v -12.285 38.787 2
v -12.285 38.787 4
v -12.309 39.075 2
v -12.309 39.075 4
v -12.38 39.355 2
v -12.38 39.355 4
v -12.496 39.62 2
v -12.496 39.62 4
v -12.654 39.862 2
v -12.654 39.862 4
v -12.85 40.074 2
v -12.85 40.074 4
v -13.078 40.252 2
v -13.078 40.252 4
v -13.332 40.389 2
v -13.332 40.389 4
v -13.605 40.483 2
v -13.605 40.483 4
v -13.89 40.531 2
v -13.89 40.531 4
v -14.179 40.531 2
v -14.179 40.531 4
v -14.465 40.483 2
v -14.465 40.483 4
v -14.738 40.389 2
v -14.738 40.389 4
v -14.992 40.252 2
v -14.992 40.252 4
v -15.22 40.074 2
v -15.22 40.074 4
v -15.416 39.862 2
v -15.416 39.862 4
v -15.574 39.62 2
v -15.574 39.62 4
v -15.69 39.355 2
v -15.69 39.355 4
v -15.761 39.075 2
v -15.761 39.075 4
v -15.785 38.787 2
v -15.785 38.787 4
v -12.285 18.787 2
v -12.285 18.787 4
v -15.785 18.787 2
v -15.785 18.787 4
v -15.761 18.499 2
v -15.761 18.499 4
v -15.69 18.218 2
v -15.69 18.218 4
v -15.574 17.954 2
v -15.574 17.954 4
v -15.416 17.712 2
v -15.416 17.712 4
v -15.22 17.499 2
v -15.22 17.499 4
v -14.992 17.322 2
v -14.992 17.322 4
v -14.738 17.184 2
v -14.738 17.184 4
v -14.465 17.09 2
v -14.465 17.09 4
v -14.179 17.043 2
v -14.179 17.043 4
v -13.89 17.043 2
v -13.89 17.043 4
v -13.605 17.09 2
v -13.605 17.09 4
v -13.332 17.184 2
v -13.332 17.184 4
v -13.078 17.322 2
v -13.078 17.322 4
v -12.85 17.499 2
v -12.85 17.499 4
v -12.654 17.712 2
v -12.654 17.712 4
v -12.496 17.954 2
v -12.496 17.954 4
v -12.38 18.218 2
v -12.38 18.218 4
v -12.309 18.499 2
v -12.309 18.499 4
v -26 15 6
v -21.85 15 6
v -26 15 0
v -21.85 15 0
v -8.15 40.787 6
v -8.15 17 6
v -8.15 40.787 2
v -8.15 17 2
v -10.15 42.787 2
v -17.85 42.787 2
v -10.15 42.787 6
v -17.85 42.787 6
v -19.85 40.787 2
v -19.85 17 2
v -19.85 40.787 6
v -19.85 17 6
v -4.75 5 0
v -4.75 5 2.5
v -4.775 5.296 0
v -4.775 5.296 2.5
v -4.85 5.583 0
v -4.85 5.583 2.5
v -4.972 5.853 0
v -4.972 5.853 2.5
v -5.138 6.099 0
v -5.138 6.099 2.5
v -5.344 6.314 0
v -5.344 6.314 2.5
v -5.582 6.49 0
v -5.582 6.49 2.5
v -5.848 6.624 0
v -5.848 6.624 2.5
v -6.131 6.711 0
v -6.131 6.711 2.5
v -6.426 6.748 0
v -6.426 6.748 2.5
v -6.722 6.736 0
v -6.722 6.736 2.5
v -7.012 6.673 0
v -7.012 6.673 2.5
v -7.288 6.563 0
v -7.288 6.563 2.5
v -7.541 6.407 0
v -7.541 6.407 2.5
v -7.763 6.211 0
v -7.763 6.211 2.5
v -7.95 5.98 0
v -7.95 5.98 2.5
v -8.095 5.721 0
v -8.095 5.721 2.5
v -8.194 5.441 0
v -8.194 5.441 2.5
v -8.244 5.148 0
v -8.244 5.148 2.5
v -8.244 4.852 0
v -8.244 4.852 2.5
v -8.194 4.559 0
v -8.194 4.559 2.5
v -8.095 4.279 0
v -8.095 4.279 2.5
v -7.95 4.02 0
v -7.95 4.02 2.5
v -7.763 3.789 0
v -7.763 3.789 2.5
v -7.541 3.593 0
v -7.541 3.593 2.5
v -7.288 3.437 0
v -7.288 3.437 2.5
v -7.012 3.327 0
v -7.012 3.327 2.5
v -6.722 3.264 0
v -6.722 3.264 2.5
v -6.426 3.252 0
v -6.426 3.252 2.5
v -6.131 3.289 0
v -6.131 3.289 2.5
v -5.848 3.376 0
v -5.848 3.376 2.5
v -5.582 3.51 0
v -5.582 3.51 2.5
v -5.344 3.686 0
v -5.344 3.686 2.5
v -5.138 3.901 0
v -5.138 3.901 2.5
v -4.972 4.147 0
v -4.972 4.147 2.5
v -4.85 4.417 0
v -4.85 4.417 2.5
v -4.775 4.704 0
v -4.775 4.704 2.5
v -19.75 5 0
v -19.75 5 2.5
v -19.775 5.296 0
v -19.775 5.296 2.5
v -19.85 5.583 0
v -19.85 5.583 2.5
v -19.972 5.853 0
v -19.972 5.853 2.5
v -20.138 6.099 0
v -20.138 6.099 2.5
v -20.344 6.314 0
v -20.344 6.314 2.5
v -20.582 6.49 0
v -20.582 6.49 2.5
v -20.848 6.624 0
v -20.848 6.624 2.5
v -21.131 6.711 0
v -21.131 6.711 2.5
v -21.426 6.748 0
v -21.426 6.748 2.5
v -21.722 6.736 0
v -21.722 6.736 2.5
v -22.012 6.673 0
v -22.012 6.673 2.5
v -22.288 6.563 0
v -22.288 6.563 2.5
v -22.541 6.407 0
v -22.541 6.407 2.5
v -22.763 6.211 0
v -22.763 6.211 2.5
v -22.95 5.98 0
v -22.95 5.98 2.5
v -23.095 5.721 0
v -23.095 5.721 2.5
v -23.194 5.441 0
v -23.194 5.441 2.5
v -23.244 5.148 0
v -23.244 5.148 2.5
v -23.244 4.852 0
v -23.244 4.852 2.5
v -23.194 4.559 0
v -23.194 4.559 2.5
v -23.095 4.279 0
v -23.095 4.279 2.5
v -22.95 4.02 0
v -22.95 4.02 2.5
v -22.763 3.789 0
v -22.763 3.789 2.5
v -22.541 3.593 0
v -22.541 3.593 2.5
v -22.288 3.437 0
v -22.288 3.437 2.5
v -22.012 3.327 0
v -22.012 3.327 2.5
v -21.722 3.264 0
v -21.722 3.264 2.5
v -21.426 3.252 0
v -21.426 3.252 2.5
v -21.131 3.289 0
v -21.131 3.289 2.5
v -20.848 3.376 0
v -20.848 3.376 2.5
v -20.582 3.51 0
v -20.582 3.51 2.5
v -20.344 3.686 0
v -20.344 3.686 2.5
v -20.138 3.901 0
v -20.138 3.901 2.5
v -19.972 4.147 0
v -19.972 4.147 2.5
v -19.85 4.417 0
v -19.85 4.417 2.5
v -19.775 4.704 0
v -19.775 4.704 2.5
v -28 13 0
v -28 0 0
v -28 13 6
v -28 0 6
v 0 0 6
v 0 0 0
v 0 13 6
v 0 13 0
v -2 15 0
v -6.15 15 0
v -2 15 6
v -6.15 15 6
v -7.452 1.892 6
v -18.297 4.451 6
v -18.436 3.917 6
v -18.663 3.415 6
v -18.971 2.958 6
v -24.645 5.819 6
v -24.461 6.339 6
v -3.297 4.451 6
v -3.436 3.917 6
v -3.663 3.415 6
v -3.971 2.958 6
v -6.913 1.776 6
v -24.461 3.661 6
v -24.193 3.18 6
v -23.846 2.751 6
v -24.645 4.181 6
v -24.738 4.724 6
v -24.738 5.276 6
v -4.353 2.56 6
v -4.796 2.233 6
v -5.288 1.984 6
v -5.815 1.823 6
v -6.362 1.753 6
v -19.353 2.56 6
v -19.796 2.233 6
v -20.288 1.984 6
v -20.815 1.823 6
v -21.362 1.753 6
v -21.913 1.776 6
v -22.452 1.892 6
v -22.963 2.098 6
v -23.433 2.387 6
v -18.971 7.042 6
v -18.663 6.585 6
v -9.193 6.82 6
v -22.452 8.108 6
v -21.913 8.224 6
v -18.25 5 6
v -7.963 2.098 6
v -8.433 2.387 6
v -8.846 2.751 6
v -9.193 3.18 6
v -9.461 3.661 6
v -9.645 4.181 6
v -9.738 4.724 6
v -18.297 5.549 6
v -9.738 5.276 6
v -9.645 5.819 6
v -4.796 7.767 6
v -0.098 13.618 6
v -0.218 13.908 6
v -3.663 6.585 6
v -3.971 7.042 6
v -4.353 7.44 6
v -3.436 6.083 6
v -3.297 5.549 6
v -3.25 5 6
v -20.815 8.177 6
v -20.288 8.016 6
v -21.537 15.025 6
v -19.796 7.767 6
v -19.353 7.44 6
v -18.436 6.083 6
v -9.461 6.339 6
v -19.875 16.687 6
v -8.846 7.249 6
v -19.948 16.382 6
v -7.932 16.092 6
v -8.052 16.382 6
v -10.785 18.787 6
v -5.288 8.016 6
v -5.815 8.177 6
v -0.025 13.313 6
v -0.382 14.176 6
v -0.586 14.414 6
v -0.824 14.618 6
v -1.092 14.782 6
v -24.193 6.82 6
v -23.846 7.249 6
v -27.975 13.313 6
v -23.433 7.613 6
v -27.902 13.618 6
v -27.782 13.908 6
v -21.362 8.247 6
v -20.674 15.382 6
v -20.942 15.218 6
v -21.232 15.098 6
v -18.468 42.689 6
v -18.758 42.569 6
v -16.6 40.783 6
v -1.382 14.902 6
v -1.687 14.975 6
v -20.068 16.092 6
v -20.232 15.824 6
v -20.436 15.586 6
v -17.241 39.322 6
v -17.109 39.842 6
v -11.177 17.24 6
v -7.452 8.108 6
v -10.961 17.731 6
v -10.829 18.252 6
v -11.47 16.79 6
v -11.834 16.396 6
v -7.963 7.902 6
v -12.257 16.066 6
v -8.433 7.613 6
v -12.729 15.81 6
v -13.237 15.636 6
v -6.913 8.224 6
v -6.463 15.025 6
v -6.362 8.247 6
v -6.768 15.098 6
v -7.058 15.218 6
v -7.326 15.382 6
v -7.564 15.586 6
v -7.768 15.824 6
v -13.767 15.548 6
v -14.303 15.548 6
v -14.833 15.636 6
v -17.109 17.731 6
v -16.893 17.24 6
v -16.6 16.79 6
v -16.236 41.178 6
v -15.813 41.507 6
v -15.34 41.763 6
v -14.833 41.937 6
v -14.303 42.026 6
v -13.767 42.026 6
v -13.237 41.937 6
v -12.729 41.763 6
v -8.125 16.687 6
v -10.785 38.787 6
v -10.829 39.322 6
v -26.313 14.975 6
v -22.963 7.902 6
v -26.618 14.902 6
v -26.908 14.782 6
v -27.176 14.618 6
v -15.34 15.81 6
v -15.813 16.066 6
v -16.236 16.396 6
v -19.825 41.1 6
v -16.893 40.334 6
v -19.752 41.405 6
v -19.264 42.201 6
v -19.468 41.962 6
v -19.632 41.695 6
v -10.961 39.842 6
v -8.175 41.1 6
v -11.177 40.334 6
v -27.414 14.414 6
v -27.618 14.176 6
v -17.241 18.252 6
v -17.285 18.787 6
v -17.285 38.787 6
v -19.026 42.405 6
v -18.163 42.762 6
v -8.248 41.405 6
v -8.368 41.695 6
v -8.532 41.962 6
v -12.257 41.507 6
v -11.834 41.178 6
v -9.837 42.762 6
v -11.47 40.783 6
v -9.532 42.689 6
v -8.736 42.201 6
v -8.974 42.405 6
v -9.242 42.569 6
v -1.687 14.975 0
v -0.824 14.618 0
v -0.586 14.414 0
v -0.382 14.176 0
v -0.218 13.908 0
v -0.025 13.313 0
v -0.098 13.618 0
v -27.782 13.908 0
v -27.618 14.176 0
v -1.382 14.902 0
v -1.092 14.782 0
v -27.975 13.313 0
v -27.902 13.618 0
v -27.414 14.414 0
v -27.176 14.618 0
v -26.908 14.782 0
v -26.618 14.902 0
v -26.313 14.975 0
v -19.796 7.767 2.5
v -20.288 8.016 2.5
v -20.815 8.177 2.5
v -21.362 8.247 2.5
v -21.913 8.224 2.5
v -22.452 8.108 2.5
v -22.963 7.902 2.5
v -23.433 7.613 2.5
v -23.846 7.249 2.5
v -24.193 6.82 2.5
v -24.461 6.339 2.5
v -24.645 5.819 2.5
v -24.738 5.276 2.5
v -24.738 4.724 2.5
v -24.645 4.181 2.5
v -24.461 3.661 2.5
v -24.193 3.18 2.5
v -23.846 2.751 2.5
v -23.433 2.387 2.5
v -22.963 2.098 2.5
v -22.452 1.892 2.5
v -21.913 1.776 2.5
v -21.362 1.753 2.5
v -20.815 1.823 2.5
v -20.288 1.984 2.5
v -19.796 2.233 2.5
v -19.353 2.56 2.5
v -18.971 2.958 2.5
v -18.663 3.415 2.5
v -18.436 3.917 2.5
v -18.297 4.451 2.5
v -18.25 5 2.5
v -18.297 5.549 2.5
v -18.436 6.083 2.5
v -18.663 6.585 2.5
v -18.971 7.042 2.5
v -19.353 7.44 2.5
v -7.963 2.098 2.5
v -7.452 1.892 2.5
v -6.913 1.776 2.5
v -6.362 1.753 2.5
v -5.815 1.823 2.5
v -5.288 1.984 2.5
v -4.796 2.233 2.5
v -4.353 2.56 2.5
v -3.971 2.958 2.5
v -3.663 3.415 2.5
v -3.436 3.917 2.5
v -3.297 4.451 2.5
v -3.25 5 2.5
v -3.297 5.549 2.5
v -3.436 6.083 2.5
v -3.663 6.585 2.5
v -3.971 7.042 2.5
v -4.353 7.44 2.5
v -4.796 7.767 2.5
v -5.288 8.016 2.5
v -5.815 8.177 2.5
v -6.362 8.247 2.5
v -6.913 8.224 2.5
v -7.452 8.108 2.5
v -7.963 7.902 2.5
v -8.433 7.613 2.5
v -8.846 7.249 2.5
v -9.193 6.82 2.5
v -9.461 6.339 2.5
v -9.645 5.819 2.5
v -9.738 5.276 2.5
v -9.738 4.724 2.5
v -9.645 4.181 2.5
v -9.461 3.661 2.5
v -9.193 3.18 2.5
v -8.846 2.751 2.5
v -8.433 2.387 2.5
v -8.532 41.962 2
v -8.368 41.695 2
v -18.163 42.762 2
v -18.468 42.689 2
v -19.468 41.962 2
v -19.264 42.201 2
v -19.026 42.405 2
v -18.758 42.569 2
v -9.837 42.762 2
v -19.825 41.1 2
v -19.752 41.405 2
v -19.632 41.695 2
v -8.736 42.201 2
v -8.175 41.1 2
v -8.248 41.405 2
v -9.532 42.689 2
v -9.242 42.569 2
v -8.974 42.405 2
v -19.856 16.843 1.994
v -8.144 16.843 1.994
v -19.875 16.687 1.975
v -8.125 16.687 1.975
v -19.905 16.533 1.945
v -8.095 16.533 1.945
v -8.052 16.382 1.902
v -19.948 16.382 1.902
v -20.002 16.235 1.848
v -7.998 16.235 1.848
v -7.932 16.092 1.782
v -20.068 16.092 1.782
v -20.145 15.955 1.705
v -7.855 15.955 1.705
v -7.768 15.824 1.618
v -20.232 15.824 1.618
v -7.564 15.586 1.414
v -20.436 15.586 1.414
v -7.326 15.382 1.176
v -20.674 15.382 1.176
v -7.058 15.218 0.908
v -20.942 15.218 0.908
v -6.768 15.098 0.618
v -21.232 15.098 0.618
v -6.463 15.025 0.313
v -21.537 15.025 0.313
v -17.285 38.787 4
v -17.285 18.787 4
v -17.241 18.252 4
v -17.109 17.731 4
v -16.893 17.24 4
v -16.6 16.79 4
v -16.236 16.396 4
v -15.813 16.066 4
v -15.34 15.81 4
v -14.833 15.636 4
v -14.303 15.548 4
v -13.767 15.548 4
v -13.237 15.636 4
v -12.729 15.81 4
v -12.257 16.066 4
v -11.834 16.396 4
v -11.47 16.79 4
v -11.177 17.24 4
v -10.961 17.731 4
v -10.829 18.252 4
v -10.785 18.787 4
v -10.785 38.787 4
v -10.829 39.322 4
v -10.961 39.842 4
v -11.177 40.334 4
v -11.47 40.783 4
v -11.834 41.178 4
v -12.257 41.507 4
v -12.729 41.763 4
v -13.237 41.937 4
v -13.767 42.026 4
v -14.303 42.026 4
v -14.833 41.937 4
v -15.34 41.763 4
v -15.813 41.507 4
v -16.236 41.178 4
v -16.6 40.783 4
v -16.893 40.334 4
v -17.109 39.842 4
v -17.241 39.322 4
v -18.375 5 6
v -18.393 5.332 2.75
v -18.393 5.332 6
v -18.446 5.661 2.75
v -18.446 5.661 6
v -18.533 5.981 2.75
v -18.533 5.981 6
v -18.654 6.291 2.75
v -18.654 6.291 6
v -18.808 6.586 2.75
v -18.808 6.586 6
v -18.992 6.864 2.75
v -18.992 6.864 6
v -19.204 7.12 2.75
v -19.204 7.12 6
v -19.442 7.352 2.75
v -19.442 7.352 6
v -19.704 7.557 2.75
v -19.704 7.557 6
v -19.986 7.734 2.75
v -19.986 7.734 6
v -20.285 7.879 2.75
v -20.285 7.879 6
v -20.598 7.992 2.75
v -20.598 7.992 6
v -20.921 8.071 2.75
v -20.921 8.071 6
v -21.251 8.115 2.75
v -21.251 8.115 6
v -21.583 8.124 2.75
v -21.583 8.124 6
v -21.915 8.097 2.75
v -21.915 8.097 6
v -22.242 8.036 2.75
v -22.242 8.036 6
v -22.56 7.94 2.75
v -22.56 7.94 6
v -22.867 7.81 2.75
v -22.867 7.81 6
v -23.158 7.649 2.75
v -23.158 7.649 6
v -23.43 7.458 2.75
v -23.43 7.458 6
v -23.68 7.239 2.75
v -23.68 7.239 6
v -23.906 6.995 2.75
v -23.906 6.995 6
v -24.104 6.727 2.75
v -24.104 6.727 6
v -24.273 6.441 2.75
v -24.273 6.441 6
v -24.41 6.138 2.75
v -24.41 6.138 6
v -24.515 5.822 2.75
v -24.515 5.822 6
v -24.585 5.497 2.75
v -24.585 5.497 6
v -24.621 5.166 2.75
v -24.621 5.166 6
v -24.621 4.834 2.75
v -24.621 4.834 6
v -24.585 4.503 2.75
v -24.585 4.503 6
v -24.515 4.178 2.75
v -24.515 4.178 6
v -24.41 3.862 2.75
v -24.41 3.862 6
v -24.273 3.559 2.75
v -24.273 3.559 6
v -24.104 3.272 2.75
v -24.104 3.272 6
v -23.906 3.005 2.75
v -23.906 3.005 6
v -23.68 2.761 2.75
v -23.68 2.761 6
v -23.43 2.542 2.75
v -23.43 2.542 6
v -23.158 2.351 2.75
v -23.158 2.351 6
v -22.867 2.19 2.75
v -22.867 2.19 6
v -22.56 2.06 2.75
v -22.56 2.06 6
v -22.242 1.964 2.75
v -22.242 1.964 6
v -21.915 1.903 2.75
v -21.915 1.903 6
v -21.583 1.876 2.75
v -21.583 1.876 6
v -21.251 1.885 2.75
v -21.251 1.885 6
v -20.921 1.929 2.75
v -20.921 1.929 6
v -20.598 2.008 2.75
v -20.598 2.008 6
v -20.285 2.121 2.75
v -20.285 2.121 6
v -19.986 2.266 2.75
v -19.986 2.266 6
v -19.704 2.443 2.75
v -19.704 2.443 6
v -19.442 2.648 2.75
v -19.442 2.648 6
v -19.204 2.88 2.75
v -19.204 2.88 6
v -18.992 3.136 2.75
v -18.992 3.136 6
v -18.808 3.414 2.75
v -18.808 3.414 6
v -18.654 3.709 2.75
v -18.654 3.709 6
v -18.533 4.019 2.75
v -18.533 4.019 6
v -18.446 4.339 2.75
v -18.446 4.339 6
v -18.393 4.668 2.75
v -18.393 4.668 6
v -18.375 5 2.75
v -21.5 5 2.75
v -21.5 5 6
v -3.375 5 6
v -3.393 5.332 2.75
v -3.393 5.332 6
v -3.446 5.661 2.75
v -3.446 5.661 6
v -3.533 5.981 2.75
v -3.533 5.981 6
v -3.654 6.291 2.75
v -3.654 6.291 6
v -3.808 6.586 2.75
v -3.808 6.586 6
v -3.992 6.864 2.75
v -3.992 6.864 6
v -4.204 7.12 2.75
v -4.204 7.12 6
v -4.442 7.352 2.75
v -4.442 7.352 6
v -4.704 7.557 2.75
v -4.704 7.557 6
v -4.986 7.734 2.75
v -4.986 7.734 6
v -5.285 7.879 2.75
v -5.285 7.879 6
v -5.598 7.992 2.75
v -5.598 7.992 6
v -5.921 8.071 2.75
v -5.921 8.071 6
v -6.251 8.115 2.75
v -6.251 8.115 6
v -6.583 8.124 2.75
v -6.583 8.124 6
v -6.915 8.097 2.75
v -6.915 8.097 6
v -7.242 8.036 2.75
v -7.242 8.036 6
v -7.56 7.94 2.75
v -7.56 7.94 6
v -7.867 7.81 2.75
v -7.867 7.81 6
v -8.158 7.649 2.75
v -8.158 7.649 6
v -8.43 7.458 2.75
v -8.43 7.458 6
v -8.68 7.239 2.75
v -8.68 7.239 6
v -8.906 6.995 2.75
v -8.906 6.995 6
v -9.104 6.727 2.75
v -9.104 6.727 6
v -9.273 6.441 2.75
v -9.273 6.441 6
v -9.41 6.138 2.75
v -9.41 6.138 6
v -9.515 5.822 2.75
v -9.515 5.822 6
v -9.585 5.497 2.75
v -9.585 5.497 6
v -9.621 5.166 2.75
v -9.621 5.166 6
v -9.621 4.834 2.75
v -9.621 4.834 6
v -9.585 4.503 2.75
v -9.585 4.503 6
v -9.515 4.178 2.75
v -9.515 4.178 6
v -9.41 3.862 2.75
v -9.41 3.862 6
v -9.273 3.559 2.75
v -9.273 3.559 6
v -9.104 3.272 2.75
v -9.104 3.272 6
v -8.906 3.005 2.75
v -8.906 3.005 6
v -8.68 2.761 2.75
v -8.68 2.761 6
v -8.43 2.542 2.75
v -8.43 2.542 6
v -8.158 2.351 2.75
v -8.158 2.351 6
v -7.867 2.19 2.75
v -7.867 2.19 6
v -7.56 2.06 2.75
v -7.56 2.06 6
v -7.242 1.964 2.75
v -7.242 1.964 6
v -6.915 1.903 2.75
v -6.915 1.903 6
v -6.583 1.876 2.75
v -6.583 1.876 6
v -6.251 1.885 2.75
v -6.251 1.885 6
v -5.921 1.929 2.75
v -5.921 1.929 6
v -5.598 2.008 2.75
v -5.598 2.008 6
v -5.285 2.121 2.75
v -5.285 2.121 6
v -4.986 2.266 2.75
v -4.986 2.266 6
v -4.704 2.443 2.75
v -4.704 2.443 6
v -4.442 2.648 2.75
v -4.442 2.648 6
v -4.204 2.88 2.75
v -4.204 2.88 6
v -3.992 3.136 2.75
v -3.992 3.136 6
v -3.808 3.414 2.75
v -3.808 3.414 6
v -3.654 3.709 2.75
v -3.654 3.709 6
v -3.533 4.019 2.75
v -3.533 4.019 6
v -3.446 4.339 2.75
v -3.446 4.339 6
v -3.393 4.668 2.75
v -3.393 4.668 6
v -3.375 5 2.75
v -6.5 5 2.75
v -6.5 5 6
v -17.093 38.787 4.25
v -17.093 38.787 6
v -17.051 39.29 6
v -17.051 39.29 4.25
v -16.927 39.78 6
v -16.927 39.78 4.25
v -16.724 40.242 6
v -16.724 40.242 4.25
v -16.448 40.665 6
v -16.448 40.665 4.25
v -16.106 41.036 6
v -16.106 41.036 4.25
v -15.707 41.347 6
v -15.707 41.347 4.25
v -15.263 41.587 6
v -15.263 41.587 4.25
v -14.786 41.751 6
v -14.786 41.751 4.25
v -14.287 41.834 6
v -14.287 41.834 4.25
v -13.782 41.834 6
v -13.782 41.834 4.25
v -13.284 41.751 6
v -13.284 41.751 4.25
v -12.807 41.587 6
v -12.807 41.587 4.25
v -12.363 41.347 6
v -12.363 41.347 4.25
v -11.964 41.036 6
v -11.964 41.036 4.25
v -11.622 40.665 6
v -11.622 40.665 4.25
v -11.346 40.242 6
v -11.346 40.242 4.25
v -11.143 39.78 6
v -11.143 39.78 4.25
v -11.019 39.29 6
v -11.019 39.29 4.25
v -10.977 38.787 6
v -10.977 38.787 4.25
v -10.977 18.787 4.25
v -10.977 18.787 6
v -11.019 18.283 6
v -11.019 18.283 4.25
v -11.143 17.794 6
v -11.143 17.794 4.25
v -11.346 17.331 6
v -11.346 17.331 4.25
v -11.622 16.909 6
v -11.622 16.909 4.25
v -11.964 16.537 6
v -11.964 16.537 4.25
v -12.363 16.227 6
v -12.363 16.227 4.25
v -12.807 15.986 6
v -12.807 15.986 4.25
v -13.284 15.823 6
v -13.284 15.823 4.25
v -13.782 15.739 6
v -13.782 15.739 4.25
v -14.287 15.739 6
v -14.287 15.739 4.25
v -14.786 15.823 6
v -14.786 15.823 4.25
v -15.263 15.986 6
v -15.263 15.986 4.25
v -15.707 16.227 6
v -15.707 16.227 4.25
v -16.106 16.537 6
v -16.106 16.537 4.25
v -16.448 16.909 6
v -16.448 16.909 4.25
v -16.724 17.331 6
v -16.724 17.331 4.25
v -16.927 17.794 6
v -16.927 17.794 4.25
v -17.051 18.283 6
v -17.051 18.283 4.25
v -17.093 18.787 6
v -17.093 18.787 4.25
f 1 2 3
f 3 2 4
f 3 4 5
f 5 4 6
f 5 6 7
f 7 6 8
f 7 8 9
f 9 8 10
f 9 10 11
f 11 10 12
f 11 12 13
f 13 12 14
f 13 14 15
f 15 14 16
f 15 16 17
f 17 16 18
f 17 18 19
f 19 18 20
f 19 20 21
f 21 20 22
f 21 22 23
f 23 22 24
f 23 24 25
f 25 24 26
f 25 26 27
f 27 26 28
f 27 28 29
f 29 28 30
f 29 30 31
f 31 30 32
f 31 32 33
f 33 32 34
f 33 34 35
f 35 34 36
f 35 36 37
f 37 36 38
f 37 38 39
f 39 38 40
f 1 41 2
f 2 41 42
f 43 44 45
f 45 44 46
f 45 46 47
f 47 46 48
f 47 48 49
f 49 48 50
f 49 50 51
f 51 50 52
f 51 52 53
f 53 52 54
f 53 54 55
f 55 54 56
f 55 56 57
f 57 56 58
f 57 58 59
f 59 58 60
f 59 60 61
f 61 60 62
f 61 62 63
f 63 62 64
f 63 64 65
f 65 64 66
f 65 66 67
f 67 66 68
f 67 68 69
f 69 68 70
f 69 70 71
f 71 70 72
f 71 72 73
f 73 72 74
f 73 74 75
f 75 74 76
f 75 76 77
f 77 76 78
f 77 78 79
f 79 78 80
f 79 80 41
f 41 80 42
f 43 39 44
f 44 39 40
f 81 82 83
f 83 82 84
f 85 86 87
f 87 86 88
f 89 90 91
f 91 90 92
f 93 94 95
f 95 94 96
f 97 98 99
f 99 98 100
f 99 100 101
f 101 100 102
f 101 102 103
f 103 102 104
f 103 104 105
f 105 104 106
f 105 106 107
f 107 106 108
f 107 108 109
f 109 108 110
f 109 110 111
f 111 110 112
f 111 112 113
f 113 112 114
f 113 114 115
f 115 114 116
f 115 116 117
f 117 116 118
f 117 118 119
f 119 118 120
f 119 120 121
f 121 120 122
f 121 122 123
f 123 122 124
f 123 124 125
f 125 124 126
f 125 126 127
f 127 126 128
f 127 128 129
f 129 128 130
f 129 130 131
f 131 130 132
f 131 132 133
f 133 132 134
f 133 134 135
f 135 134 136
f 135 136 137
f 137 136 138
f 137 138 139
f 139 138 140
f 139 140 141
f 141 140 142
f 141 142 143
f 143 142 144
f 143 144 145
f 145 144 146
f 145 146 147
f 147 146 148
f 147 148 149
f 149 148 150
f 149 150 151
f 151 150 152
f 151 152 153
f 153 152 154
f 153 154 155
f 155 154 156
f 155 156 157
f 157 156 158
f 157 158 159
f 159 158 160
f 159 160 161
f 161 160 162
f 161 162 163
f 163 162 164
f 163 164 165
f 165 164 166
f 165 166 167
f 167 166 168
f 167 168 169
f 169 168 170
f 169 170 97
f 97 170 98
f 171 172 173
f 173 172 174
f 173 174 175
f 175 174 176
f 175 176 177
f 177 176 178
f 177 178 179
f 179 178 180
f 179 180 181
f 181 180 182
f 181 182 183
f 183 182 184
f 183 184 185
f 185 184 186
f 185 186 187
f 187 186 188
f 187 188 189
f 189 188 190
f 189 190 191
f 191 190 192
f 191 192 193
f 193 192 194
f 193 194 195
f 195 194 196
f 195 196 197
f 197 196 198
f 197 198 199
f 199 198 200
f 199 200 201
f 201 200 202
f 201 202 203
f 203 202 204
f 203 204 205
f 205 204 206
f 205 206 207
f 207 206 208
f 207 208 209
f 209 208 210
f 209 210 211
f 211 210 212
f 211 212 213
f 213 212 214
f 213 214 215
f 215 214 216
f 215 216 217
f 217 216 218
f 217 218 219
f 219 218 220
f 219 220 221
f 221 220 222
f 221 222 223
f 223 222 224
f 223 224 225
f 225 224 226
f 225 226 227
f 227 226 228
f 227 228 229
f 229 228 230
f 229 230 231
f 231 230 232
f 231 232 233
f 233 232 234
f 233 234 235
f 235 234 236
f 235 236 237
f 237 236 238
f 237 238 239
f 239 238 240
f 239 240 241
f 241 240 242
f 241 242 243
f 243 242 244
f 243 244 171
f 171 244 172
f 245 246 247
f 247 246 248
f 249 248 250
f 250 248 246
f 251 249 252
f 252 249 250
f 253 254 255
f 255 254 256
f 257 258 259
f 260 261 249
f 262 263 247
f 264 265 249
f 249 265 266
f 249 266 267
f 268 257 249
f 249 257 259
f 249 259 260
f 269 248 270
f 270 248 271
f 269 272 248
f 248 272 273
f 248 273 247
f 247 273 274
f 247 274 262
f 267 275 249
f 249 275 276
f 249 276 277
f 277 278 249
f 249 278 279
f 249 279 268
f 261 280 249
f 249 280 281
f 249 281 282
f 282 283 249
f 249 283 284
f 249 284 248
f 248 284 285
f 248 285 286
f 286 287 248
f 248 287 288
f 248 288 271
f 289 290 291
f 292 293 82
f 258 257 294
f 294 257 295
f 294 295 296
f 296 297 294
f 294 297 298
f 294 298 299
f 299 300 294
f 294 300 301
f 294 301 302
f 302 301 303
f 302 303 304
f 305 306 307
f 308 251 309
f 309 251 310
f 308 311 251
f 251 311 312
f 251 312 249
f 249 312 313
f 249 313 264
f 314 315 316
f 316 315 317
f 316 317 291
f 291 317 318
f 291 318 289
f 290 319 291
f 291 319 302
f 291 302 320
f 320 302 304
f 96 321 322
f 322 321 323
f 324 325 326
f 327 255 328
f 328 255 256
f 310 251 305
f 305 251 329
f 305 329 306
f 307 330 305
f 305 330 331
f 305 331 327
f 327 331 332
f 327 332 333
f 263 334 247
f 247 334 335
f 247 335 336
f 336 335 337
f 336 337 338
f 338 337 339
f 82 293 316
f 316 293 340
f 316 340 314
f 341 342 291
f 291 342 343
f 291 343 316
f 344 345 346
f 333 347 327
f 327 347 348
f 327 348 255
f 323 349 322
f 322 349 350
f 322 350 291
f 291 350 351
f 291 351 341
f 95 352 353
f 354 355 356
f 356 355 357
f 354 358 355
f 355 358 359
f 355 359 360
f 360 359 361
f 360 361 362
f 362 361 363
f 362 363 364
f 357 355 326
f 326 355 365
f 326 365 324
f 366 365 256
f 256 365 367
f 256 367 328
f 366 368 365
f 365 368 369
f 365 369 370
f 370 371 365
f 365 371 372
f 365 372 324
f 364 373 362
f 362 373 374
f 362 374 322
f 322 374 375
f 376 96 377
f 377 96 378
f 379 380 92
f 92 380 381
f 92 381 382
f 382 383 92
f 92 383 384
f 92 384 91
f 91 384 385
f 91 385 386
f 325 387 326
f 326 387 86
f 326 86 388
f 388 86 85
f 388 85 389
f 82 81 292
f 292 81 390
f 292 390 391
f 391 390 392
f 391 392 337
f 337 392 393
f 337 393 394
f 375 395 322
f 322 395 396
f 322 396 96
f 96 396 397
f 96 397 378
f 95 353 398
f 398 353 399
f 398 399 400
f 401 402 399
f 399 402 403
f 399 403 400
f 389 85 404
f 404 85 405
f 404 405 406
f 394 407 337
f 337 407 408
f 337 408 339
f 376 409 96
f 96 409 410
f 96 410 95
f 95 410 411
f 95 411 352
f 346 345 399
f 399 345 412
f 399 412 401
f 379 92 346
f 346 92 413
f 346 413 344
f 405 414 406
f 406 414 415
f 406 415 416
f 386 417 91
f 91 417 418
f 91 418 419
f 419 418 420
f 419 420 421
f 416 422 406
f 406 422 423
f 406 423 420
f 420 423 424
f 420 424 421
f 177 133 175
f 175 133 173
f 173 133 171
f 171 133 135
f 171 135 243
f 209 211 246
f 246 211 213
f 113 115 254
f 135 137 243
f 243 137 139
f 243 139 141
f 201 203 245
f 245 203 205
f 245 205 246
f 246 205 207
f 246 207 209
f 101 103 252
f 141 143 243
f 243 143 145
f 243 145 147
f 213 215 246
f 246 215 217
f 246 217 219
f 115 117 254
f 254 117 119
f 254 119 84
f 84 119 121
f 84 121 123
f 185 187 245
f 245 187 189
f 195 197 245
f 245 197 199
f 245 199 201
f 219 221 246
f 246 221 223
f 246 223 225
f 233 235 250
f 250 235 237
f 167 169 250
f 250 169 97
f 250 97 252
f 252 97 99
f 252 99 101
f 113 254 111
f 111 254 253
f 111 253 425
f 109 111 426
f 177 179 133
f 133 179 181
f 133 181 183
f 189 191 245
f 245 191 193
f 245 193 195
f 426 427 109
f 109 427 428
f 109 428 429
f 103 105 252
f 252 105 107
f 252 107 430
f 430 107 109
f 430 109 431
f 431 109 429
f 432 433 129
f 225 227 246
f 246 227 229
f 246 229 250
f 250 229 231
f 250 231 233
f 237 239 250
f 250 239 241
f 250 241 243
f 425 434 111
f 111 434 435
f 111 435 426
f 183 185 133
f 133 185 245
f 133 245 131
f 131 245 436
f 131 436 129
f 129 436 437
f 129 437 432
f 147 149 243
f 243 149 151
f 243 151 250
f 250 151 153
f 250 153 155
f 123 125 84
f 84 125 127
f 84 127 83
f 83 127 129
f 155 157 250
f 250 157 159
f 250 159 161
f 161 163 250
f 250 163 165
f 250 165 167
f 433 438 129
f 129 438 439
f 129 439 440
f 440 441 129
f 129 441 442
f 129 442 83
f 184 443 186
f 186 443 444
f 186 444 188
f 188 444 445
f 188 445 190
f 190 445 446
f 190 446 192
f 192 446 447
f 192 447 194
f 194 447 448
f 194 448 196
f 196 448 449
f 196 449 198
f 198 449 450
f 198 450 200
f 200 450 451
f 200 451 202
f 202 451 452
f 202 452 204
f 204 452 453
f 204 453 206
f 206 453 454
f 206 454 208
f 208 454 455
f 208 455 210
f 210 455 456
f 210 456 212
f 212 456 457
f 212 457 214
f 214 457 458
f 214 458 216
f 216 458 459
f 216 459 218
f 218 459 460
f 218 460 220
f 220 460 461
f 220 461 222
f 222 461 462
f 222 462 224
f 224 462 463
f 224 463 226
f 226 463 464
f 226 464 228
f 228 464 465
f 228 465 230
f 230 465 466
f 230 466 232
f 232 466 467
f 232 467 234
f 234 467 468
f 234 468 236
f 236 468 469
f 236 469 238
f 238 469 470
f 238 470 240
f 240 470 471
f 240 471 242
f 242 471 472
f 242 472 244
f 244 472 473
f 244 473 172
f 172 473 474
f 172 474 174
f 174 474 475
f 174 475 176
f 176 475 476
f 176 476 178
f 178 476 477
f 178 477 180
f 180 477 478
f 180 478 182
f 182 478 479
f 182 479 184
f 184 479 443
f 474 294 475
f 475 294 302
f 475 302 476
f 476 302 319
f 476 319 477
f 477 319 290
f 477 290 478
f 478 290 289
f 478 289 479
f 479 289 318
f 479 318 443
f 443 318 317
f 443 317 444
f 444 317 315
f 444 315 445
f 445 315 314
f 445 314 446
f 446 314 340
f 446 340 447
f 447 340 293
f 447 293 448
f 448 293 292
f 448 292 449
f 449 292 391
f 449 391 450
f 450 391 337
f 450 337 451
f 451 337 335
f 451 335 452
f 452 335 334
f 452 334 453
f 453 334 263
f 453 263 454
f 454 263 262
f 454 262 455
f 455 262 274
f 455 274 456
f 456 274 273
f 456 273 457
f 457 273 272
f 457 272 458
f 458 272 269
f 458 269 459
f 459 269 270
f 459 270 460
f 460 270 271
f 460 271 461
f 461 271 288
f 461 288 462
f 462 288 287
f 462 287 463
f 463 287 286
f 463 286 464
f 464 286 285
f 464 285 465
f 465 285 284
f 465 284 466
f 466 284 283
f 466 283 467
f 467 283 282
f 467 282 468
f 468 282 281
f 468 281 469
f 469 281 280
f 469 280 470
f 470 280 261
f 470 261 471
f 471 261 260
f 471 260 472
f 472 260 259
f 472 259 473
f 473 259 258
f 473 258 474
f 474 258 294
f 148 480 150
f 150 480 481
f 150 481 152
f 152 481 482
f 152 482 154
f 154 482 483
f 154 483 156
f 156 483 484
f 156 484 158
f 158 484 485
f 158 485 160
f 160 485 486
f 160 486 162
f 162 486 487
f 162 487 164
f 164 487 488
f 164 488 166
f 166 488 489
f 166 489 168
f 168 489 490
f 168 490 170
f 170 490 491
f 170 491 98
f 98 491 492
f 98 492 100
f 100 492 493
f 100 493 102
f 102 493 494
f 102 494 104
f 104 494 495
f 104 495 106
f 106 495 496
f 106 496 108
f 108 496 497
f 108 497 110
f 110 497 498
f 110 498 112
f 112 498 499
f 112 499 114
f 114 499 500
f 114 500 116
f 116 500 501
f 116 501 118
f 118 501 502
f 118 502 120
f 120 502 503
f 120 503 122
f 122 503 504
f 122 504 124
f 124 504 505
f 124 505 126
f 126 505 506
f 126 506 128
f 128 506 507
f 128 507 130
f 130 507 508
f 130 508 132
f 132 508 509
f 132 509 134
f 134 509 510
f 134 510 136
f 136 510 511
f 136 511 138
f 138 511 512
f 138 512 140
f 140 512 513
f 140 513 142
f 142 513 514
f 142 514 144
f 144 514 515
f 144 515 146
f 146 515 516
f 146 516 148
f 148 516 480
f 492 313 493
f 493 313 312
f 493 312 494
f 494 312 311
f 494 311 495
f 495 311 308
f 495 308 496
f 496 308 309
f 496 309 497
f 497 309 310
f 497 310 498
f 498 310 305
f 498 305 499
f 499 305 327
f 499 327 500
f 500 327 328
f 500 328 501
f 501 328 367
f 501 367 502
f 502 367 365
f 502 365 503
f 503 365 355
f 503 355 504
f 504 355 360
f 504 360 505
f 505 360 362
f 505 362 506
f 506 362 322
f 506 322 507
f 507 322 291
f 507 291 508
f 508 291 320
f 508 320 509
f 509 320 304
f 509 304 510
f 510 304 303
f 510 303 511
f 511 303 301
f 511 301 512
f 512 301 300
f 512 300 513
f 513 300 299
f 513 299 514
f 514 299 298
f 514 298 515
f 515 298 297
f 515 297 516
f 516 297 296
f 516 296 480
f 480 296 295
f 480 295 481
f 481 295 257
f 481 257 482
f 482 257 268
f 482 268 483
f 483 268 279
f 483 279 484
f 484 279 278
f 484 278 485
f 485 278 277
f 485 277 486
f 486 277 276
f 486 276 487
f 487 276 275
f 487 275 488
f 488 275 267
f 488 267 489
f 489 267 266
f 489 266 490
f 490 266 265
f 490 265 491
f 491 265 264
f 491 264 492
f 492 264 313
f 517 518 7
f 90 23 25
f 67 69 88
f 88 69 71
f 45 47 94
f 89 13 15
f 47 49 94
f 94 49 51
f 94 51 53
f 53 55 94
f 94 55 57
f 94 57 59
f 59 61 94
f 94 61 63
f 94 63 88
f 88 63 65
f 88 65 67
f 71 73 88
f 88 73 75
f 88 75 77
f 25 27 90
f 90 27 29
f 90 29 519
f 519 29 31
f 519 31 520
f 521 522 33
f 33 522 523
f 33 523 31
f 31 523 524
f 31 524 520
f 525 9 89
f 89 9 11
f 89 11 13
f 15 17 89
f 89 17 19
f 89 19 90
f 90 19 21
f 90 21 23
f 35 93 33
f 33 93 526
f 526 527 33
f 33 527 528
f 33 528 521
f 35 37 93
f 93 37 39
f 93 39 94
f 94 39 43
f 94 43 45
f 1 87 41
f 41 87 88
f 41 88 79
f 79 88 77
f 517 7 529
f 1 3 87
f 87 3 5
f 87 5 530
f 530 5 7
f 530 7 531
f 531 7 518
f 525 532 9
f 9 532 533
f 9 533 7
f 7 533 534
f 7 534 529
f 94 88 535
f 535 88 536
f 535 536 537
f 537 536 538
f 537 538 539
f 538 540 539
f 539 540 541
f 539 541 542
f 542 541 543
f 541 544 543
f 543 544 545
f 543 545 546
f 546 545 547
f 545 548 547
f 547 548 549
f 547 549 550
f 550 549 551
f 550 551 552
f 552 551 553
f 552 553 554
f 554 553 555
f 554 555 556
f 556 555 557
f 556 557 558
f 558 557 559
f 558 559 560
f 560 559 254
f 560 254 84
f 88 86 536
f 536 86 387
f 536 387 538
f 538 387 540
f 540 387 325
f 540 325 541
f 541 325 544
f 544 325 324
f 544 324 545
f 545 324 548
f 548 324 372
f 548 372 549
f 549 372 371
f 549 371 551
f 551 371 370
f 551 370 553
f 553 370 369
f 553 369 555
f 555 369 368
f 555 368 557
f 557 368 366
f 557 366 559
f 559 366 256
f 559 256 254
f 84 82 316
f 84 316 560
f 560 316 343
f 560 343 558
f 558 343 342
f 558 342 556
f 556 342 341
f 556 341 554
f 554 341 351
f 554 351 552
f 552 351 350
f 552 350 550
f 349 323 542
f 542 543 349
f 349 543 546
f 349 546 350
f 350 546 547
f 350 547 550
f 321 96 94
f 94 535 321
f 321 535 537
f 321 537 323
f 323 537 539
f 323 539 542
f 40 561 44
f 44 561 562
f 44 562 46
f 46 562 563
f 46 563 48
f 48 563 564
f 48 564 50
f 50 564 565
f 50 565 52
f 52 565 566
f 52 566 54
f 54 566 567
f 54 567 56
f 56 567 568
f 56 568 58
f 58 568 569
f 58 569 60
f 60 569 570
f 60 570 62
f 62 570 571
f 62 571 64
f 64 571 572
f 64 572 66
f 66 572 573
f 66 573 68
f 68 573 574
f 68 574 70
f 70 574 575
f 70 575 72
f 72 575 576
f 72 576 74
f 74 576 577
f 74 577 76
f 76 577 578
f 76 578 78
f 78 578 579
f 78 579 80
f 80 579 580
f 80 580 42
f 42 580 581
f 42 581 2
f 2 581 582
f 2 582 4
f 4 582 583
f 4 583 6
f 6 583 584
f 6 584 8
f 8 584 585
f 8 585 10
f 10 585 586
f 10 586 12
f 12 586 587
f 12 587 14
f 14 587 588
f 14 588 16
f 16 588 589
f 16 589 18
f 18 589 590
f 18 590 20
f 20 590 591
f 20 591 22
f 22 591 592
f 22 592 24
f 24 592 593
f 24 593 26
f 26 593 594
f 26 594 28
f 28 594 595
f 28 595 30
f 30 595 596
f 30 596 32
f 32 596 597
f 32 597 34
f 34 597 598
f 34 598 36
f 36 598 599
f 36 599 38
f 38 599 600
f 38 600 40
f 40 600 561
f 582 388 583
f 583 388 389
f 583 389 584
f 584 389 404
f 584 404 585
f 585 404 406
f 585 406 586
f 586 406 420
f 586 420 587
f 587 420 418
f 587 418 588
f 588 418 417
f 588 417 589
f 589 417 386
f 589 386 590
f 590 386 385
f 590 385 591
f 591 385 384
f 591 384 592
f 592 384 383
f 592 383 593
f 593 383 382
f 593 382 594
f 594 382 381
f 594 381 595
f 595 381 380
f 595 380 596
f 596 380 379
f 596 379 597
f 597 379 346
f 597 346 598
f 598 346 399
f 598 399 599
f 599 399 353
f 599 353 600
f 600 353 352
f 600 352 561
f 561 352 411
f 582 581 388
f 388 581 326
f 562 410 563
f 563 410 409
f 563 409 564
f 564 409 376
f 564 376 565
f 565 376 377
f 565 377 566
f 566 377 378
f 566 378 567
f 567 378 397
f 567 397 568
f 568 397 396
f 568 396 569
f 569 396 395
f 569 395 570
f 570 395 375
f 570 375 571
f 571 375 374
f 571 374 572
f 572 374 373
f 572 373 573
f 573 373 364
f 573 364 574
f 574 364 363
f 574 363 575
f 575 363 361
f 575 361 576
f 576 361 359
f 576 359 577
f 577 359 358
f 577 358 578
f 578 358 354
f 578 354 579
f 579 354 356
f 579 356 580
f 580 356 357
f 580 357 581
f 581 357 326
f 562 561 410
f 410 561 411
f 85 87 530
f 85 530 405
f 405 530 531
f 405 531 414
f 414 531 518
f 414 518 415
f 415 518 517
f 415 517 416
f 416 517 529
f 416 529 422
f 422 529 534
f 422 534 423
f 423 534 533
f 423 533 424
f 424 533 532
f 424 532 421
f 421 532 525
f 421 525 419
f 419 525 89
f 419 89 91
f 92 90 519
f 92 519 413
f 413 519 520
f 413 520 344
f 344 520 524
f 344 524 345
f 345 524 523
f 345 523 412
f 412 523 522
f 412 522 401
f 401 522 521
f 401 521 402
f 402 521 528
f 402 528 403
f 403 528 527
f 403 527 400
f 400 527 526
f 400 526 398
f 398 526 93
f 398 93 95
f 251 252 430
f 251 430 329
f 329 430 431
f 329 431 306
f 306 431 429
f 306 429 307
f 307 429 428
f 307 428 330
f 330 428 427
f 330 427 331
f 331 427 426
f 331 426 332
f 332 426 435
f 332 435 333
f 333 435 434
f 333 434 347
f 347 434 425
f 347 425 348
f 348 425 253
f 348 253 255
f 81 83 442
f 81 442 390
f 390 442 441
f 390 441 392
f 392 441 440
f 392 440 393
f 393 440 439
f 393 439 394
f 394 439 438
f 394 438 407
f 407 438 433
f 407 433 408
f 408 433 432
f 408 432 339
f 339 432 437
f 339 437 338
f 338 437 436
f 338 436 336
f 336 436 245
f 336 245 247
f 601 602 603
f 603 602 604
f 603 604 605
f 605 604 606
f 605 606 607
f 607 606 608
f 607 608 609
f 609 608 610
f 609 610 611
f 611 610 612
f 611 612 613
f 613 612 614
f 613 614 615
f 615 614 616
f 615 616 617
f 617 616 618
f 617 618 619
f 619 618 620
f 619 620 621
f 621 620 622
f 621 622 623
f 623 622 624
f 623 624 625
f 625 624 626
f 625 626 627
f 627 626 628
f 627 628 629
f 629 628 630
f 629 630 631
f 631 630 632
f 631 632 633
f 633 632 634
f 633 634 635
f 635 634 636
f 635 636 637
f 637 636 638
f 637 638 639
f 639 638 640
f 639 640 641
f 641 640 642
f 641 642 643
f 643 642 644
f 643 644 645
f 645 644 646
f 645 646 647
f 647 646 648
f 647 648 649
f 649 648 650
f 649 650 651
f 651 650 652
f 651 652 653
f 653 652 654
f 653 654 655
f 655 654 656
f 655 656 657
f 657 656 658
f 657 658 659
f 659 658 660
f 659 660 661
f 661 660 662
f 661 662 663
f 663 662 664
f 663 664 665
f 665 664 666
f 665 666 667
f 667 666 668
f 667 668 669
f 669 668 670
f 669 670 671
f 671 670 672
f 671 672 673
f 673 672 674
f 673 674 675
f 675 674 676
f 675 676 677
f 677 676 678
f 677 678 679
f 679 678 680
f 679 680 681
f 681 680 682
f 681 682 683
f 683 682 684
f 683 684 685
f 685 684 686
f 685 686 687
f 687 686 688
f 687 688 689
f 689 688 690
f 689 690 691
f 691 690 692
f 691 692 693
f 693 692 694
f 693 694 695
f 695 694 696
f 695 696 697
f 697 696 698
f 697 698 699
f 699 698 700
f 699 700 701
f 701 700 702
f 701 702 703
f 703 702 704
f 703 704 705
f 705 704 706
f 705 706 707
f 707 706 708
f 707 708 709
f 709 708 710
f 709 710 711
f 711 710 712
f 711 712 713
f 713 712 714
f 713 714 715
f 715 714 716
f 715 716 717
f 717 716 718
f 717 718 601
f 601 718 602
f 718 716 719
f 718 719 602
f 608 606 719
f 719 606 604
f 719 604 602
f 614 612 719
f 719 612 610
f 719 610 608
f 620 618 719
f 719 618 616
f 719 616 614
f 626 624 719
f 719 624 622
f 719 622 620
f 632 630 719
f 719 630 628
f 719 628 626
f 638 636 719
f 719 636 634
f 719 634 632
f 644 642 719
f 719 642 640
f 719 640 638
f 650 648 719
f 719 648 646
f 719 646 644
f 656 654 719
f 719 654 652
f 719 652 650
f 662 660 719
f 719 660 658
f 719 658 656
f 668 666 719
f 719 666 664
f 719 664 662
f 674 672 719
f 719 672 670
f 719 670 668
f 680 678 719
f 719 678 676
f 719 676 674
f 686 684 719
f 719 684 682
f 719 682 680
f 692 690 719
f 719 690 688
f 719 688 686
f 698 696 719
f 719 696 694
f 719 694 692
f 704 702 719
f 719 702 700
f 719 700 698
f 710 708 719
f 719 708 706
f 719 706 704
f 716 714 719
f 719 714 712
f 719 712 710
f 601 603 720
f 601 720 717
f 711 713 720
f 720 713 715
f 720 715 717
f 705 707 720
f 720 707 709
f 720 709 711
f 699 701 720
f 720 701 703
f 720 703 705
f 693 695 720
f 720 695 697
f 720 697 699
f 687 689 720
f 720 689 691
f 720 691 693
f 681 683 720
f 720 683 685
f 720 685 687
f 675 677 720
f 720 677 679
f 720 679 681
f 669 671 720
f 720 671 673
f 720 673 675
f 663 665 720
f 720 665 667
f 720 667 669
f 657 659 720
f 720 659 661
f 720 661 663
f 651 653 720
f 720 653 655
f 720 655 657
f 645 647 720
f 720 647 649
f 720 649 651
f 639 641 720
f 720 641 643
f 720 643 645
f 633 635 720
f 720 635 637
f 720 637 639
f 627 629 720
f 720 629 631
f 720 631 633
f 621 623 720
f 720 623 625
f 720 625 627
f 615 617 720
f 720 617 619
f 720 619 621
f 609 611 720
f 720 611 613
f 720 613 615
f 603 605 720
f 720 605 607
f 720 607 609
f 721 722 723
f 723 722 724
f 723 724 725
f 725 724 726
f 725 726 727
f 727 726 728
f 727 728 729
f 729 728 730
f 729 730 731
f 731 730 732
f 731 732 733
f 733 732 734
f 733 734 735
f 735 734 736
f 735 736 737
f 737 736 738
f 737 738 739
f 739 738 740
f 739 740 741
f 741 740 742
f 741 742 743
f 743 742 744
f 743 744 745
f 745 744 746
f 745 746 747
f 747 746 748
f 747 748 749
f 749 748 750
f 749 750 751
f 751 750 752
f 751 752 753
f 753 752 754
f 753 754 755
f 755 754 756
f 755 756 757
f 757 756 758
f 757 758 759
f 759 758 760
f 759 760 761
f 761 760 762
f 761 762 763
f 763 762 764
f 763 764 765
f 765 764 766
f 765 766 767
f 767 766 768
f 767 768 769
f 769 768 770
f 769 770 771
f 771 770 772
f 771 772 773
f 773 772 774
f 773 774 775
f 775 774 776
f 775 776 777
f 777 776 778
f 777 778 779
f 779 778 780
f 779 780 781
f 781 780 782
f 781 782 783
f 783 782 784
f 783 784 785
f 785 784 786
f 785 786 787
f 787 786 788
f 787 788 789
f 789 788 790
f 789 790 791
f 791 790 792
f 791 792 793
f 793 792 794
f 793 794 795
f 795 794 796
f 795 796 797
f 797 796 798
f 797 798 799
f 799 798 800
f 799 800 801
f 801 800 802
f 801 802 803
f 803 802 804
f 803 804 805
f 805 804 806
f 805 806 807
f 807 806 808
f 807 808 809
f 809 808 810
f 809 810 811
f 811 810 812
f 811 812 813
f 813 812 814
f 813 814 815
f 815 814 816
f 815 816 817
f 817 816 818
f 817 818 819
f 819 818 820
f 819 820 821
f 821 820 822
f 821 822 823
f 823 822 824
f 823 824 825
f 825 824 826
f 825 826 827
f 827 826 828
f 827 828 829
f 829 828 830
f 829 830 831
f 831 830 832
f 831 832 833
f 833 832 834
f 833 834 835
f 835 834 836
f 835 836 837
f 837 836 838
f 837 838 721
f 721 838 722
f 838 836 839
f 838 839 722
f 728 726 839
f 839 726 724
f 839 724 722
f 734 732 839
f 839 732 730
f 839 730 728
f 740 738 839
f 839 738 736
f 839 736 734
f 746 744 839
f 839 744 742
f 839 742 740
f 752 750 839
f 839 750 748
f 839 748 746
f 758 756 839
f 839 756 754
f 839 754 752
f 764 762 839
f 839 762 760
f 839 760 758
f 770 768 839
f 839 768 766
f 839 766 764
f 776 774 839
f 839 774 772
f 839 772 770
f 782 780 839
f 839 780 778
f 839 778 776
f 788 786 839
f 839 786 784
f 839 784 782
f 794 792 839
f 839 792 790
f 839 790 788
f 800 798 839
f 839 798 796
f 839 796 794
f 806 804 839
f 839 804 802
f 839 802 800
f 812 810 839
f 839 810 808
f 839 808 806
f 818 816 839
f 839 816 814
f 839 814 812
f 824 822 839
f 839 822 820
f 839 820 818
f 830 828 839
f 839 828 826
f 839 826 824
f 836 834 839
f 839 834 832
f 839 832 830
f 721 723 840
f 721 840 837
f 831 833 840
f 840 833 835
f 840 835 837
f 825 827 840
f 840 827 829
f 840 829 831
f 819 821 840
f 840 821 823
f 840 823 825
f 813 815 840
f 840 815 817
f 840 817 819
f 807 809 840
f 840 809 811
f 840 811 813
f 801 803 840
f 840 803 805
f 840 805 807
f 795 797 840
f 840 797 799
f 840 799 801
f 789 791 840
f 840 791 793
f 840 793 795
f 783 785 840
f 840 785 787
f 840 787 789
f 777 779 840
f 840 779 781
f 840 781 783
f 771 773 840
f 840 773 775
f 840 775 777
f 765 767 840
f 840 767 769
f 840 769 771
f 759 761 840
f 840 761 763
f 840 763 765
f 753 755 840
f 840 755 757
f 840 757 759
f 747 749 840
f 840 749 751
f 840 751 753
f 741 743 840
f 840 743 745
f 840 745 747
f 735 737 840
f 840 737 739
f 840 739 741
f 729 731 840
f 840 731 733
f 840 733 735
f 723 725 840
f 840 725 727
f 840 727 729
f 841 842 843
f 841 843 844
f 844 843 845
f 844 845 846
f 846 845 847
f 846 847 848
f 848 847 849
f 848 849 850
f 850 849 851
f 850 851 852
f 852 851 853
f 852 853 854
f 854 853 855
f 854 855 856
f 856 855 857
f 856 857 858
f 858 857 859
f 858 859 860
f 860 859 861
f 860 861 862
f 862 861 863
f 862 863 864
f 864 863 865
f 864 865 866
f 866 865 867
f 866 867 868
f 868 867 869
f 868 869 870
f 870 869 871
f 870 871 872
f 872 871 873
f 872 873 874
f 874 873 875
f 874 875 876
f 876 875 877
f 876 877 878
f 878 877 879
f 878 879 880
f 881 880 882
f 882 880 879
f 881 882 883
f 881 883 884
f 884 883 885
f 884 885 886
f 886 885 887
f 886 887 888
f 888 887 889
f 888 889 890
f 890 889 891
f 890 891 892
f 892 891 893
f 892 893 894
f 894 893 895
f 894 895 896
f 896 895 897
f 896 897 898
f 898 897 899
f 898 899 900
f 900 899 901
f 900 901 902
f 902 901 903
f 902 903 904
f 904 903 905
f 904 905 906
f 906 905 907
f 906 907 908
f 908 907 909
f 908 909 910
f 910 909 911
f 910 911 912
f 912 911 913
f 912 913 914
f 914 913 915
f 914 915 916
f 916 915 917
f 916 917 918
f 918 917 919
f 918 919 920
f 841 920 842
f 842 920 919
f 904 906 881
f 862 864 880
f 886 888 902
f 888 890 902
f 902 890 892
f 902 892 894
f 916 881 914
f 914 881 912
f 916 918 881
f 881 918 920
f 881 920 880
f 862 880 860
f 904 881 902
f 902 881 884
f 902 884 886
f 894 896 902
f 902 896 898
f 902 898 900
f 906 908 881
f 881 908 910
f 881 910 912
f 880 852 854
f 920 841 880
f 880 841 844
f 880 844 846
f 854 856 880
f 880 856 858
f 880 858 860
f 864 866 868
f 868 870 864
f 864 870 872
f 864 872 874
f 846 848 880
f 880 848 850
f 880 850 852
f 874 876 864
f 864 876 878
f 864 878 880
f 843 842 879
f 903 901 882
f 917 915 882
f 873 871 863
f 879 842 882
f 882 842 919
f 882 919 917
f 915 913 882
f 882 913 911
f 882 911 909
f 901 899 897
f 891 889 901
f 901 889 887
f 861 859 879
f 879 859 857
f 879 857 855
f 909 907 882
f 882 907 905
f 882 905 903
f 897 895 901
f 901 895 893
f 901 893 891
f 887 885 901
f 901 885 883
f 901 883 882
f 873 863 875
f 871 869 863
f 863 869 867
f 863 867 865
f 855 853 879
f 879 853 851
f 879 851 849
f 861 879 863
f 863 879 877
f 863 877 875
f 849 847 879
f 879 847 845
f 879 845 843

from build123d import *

# Parameters (mm, degrees)
BOSS_EXTRUDE1_DEPTH     = 6
CUT_EXTRUDE1_DEPTH      = 33.32645975048922
CUT_EXTRUDE1_DEPTH_BACK = 33.32645975048922
SKETCH3_R               = 1.7500000000000002
SKETCH3_R_2             = 1.7499999999999998
SKETCH6_R               = 3.2500000000000004
SKETCH6_R_2             = 3.25
CUT_EXTRUDE2_DEPTH      = 3.5
SKETCH7_W               = 11.699999999999998
SKETCH7_H               = 27.786688839798195
BOSS_EXTRUDE2_DEPTH     = 6
SKETCH8_W               = 11.699999999999998
SKETCH8_H               = 27.786688839798195
CUT_EXTRUDE3_DEPTH      = 2
FILLET1_R               = 2
FILLET2_R               = 2
FILLET3_R               = 2
CUT_EXTRUDE4_DEPTH      = 52.48495646180262
CUT_EXTRUDE4_DEPTH_BACK = 52.48495646180262
CUT_EXTRUDE5_DEPTH      = 52.48495646180262
CUT_EXTRUDE5_DEPTH_BACK = 2
FILLET4_R               = 2
FILLET5_R               = 2
SKETCH11_R              = 3.1250000000000004
BOSS_EXTRUDE3_DEPTH     = 3.25
SKETCH11_R_2            = 3.125
BOSS_EXTRUDE3_2_DEPTH   = 3.25
BOSS_EXTRUDE4_DEPTH     = 1.75


with BuildPart() as part:
    # Sketch2 → Boss-Extrude1 (new body)
    with BuildSketch(Plane.XY):
        Polygon((-27.999999999999996, 15), (1.84e-15, 15), (0, 0), (-27.999999999999996, 0), align=None)
    extrude(amount=BOSS_EXTRUDE1_DEPTH)

    # Sketch3 → Cut-Extrude1 (cut, two sides: drawn at the far end of the back side and taken through both)
    with BuildSketch(Plane.XY.offset(6).offset(-CUT_EXTRUDE1_DEPTH_BACK)):
        with Locations((-21.5, 4.999999999999999)):
            Circle(SKETCH3_R)
        with Locations((-6.5, 4.999999999999999)):
            Circle(SKETCH3_R_2)
    extrude(amount=CUT_EXTRUDE1_DEPTH + CUT_EXTRUDE1_DEPTH_BACK, mode=Mode.SUBTRACT)

    # Sketch6 → Cut-Extrude2 (cut)
    with BuildSketch(Plane.XY.offset(6)):
        with Locations((-21.5, 4.999999999999999)):
            Circle(SKETCH6_R)
        with Locations((-6.500000000000001, 4.999999999999999)):
            Circle(SKETCH6_R_2)
    extrude(amount=-CUT_EXTRUDE2_DEPTH, mode=Mode.SUBTRACT)

    # Sketch7 → Boss-Extrude2 (add)
    with BuildSketch(Plane(origin=(0, 0, 0), x_dir=(-1, 0, 0), z_dir=(0, 0, -1))):
        with Locations((14, 28.893344419899098)):
            Rectangle(SKETCH7_W, SKETCH7_H)
    extrude(amount=-BOSS_EXTRUDE2_DEPTH)

    # Sketch8 → Cut-Extrude3 (cut)
    with BuildSketch(Plane(origin=(0, 0, 0), x_dir=(-1, 0, 0), z_dir=(0, 0, -1))):
        with Locations((14, 28.893344419899098)):
            Rectangle(SKETCH8_W, SKETCH8_H)
    extrude(amount=-CUT_EXTRUDE3_DEPTH, mode=Mode.SUBTRACT)

    # Fillet1
    fillet1_edges = [part.edges().sort_by_distance(p)[0] for p in [
        (-14, 15, 2),
    ]]
    fillet(fillet1_edges, radius=FILLET1_R - 0.0001)  # a hair under: the kernel refuses the full size

    # Fillet2
    fillet2_edges = [part.edges().sort_by_distance(p)[0] for p in [
        (-8.15, 15, 3.0000500000000003),
    ]]
    fillet(fillet2_edges, radius=FILLET2_R)

    # Fillet3
    fillet3_edges = [part.edges().sort_by_distance(p)[0] for p in [
        (-19.849999999999998, 15, 3.00005),
    ]]
    fillet(fillet3_edges, radius=FILLET3_R)

    # Sketch9 → Cut-Extrude4 (cut, two sides: drawn at the far end of the back side and taken through both)
    with BuildSketch(Plane.XY.offset(6).offset(-CUT_EXTRUDE4_DEPTH_BACK)):
        with BuildLine():
            Line((-12.28493666219322, 38.78668883979819), (-12.284936662193216, 18.786688839798188))
            ThreePointArc((-12.284936662193216, 18.786688839798188), (-14.034936662193216, 17.036688839798188), (-15.784936662193216, 18.786688839798188))
            Line((-15.784936662193216, 18.786688839798188), (-15.78493666219322, 38.78668883979819))
            ThreePointArc((-15.78493666219322, 38.78668883979819), (-14.03493666219322, 40.53668883979819), (-12.28493666219322, 38.78668883979819))
        make_face()
    extrude(amount=CUT_EXTRUDE4_DEPTH + CUT_EXTRUDE4_DEPTH_BACK, mode=Mode.SUBTRACT)

    # Sketch10 → Cut-Extrude5 (cut, two sides: drawn at the far end of the back side and taken through both)
    with BuildSketch(Plane.XY.offset(6).offset(-CUT_EXTRUDE5_DEPTH_BACK)):
        with BuildLine():
            Line((-10.784936662193223, 38.78668883979819), (-10.78493666219322, 18.786688839798188))
            ThreePointArc((-10.78493666219322, 18.786688839798188), (-14.034936662193216, 15.536688839798186), (-17.284936662193218, 18.786688839798188))
            Line((-17.284936662193218, 18.786688839798188), (-17.284936662193218, 38.78668883979819))
            ThreePointArc((-17.284936662193218, 38.78668883979819), (-14.03493666219322, 42.03668883979819), (-10.784936662193223, 38.78668883979819))
        make_face()
    extrude(amount=CUT_EXTRUDE5_DEPTH + CUT_EXTRUDE5_DEPTH_BACK, mode=Mode.SUBTRACT)

    # Fillet4
    fillet4_edges = [part.edges().sort_by_distance(p)[0] for p in [
        (-8.15, 42.786688839798195, 4),
        (-19.849999999999998, 42.786688839798195, 4),
    ]]
    fillet(fillet4_edges, radius=FILLET4_R)

    # Fillet5
    fillet5_edges = [part.edges().sort_by_distance(p)[0] for p in [
        (-27.999999999999996, 15, 3),
        (1.84e-15, 15, 3),
    ]]
    fillet(fillet5_edges, radius=FILLET5_R)


with BuildPart() as body_2:
    # Sketch11 → Boss-Extrude3 (new body)
    with BuildSketch(Plane.XY.offset(6)):
        with Locations((-21.5, 4.999999999999999)):
            Circle(SKETCH11_R)
    extrude(amount=-BOSS_EXTRUDE3_DEPTH)


with BuildPart() as body_3:
    # Sketch11 → Boss-Extrude3 2 (new body)
    with BuildSketch(Plane.XY.offset(6)):
        with Locations((-6.5, 4.999999999999999)):
            Circle(SKETCH11_R_2)
    extrude(amount=-BOSS_EXTRUDE3_2_DEPTH)


with BuildPart() as body_4:
    # Sketch12 → Boss-Extrude4 (new body)
    with BuildSketch(Plane.XY.offset(6)):
        with BuildLine():
            Line((-10.977197352545545, 38.78668883979819), (-10.977197352545542, 18.786688839798185))
            ThreePointArc((-10.977197352545542, 18.786688839798185), (-14.034936662193216, 15.72894953015051), (-17.09267597184089, 18.786688839798185))
            Line((-17.09267597184089, 18.786688839798185), (-17.092675971840894, 38.78668883979819))
            ThreePointArc((-17.092675971840894, 38.78668883979819), (-14.03493666219322, 41.84442814944586), (-10.977197352545545, 38.78668883979819))
        make_face()
    extrude(amount=-BOSS_EXTRUDE4_DEPTH)


solid = Compound([part.part, body_2.part, body_3.part, body_4.part])
